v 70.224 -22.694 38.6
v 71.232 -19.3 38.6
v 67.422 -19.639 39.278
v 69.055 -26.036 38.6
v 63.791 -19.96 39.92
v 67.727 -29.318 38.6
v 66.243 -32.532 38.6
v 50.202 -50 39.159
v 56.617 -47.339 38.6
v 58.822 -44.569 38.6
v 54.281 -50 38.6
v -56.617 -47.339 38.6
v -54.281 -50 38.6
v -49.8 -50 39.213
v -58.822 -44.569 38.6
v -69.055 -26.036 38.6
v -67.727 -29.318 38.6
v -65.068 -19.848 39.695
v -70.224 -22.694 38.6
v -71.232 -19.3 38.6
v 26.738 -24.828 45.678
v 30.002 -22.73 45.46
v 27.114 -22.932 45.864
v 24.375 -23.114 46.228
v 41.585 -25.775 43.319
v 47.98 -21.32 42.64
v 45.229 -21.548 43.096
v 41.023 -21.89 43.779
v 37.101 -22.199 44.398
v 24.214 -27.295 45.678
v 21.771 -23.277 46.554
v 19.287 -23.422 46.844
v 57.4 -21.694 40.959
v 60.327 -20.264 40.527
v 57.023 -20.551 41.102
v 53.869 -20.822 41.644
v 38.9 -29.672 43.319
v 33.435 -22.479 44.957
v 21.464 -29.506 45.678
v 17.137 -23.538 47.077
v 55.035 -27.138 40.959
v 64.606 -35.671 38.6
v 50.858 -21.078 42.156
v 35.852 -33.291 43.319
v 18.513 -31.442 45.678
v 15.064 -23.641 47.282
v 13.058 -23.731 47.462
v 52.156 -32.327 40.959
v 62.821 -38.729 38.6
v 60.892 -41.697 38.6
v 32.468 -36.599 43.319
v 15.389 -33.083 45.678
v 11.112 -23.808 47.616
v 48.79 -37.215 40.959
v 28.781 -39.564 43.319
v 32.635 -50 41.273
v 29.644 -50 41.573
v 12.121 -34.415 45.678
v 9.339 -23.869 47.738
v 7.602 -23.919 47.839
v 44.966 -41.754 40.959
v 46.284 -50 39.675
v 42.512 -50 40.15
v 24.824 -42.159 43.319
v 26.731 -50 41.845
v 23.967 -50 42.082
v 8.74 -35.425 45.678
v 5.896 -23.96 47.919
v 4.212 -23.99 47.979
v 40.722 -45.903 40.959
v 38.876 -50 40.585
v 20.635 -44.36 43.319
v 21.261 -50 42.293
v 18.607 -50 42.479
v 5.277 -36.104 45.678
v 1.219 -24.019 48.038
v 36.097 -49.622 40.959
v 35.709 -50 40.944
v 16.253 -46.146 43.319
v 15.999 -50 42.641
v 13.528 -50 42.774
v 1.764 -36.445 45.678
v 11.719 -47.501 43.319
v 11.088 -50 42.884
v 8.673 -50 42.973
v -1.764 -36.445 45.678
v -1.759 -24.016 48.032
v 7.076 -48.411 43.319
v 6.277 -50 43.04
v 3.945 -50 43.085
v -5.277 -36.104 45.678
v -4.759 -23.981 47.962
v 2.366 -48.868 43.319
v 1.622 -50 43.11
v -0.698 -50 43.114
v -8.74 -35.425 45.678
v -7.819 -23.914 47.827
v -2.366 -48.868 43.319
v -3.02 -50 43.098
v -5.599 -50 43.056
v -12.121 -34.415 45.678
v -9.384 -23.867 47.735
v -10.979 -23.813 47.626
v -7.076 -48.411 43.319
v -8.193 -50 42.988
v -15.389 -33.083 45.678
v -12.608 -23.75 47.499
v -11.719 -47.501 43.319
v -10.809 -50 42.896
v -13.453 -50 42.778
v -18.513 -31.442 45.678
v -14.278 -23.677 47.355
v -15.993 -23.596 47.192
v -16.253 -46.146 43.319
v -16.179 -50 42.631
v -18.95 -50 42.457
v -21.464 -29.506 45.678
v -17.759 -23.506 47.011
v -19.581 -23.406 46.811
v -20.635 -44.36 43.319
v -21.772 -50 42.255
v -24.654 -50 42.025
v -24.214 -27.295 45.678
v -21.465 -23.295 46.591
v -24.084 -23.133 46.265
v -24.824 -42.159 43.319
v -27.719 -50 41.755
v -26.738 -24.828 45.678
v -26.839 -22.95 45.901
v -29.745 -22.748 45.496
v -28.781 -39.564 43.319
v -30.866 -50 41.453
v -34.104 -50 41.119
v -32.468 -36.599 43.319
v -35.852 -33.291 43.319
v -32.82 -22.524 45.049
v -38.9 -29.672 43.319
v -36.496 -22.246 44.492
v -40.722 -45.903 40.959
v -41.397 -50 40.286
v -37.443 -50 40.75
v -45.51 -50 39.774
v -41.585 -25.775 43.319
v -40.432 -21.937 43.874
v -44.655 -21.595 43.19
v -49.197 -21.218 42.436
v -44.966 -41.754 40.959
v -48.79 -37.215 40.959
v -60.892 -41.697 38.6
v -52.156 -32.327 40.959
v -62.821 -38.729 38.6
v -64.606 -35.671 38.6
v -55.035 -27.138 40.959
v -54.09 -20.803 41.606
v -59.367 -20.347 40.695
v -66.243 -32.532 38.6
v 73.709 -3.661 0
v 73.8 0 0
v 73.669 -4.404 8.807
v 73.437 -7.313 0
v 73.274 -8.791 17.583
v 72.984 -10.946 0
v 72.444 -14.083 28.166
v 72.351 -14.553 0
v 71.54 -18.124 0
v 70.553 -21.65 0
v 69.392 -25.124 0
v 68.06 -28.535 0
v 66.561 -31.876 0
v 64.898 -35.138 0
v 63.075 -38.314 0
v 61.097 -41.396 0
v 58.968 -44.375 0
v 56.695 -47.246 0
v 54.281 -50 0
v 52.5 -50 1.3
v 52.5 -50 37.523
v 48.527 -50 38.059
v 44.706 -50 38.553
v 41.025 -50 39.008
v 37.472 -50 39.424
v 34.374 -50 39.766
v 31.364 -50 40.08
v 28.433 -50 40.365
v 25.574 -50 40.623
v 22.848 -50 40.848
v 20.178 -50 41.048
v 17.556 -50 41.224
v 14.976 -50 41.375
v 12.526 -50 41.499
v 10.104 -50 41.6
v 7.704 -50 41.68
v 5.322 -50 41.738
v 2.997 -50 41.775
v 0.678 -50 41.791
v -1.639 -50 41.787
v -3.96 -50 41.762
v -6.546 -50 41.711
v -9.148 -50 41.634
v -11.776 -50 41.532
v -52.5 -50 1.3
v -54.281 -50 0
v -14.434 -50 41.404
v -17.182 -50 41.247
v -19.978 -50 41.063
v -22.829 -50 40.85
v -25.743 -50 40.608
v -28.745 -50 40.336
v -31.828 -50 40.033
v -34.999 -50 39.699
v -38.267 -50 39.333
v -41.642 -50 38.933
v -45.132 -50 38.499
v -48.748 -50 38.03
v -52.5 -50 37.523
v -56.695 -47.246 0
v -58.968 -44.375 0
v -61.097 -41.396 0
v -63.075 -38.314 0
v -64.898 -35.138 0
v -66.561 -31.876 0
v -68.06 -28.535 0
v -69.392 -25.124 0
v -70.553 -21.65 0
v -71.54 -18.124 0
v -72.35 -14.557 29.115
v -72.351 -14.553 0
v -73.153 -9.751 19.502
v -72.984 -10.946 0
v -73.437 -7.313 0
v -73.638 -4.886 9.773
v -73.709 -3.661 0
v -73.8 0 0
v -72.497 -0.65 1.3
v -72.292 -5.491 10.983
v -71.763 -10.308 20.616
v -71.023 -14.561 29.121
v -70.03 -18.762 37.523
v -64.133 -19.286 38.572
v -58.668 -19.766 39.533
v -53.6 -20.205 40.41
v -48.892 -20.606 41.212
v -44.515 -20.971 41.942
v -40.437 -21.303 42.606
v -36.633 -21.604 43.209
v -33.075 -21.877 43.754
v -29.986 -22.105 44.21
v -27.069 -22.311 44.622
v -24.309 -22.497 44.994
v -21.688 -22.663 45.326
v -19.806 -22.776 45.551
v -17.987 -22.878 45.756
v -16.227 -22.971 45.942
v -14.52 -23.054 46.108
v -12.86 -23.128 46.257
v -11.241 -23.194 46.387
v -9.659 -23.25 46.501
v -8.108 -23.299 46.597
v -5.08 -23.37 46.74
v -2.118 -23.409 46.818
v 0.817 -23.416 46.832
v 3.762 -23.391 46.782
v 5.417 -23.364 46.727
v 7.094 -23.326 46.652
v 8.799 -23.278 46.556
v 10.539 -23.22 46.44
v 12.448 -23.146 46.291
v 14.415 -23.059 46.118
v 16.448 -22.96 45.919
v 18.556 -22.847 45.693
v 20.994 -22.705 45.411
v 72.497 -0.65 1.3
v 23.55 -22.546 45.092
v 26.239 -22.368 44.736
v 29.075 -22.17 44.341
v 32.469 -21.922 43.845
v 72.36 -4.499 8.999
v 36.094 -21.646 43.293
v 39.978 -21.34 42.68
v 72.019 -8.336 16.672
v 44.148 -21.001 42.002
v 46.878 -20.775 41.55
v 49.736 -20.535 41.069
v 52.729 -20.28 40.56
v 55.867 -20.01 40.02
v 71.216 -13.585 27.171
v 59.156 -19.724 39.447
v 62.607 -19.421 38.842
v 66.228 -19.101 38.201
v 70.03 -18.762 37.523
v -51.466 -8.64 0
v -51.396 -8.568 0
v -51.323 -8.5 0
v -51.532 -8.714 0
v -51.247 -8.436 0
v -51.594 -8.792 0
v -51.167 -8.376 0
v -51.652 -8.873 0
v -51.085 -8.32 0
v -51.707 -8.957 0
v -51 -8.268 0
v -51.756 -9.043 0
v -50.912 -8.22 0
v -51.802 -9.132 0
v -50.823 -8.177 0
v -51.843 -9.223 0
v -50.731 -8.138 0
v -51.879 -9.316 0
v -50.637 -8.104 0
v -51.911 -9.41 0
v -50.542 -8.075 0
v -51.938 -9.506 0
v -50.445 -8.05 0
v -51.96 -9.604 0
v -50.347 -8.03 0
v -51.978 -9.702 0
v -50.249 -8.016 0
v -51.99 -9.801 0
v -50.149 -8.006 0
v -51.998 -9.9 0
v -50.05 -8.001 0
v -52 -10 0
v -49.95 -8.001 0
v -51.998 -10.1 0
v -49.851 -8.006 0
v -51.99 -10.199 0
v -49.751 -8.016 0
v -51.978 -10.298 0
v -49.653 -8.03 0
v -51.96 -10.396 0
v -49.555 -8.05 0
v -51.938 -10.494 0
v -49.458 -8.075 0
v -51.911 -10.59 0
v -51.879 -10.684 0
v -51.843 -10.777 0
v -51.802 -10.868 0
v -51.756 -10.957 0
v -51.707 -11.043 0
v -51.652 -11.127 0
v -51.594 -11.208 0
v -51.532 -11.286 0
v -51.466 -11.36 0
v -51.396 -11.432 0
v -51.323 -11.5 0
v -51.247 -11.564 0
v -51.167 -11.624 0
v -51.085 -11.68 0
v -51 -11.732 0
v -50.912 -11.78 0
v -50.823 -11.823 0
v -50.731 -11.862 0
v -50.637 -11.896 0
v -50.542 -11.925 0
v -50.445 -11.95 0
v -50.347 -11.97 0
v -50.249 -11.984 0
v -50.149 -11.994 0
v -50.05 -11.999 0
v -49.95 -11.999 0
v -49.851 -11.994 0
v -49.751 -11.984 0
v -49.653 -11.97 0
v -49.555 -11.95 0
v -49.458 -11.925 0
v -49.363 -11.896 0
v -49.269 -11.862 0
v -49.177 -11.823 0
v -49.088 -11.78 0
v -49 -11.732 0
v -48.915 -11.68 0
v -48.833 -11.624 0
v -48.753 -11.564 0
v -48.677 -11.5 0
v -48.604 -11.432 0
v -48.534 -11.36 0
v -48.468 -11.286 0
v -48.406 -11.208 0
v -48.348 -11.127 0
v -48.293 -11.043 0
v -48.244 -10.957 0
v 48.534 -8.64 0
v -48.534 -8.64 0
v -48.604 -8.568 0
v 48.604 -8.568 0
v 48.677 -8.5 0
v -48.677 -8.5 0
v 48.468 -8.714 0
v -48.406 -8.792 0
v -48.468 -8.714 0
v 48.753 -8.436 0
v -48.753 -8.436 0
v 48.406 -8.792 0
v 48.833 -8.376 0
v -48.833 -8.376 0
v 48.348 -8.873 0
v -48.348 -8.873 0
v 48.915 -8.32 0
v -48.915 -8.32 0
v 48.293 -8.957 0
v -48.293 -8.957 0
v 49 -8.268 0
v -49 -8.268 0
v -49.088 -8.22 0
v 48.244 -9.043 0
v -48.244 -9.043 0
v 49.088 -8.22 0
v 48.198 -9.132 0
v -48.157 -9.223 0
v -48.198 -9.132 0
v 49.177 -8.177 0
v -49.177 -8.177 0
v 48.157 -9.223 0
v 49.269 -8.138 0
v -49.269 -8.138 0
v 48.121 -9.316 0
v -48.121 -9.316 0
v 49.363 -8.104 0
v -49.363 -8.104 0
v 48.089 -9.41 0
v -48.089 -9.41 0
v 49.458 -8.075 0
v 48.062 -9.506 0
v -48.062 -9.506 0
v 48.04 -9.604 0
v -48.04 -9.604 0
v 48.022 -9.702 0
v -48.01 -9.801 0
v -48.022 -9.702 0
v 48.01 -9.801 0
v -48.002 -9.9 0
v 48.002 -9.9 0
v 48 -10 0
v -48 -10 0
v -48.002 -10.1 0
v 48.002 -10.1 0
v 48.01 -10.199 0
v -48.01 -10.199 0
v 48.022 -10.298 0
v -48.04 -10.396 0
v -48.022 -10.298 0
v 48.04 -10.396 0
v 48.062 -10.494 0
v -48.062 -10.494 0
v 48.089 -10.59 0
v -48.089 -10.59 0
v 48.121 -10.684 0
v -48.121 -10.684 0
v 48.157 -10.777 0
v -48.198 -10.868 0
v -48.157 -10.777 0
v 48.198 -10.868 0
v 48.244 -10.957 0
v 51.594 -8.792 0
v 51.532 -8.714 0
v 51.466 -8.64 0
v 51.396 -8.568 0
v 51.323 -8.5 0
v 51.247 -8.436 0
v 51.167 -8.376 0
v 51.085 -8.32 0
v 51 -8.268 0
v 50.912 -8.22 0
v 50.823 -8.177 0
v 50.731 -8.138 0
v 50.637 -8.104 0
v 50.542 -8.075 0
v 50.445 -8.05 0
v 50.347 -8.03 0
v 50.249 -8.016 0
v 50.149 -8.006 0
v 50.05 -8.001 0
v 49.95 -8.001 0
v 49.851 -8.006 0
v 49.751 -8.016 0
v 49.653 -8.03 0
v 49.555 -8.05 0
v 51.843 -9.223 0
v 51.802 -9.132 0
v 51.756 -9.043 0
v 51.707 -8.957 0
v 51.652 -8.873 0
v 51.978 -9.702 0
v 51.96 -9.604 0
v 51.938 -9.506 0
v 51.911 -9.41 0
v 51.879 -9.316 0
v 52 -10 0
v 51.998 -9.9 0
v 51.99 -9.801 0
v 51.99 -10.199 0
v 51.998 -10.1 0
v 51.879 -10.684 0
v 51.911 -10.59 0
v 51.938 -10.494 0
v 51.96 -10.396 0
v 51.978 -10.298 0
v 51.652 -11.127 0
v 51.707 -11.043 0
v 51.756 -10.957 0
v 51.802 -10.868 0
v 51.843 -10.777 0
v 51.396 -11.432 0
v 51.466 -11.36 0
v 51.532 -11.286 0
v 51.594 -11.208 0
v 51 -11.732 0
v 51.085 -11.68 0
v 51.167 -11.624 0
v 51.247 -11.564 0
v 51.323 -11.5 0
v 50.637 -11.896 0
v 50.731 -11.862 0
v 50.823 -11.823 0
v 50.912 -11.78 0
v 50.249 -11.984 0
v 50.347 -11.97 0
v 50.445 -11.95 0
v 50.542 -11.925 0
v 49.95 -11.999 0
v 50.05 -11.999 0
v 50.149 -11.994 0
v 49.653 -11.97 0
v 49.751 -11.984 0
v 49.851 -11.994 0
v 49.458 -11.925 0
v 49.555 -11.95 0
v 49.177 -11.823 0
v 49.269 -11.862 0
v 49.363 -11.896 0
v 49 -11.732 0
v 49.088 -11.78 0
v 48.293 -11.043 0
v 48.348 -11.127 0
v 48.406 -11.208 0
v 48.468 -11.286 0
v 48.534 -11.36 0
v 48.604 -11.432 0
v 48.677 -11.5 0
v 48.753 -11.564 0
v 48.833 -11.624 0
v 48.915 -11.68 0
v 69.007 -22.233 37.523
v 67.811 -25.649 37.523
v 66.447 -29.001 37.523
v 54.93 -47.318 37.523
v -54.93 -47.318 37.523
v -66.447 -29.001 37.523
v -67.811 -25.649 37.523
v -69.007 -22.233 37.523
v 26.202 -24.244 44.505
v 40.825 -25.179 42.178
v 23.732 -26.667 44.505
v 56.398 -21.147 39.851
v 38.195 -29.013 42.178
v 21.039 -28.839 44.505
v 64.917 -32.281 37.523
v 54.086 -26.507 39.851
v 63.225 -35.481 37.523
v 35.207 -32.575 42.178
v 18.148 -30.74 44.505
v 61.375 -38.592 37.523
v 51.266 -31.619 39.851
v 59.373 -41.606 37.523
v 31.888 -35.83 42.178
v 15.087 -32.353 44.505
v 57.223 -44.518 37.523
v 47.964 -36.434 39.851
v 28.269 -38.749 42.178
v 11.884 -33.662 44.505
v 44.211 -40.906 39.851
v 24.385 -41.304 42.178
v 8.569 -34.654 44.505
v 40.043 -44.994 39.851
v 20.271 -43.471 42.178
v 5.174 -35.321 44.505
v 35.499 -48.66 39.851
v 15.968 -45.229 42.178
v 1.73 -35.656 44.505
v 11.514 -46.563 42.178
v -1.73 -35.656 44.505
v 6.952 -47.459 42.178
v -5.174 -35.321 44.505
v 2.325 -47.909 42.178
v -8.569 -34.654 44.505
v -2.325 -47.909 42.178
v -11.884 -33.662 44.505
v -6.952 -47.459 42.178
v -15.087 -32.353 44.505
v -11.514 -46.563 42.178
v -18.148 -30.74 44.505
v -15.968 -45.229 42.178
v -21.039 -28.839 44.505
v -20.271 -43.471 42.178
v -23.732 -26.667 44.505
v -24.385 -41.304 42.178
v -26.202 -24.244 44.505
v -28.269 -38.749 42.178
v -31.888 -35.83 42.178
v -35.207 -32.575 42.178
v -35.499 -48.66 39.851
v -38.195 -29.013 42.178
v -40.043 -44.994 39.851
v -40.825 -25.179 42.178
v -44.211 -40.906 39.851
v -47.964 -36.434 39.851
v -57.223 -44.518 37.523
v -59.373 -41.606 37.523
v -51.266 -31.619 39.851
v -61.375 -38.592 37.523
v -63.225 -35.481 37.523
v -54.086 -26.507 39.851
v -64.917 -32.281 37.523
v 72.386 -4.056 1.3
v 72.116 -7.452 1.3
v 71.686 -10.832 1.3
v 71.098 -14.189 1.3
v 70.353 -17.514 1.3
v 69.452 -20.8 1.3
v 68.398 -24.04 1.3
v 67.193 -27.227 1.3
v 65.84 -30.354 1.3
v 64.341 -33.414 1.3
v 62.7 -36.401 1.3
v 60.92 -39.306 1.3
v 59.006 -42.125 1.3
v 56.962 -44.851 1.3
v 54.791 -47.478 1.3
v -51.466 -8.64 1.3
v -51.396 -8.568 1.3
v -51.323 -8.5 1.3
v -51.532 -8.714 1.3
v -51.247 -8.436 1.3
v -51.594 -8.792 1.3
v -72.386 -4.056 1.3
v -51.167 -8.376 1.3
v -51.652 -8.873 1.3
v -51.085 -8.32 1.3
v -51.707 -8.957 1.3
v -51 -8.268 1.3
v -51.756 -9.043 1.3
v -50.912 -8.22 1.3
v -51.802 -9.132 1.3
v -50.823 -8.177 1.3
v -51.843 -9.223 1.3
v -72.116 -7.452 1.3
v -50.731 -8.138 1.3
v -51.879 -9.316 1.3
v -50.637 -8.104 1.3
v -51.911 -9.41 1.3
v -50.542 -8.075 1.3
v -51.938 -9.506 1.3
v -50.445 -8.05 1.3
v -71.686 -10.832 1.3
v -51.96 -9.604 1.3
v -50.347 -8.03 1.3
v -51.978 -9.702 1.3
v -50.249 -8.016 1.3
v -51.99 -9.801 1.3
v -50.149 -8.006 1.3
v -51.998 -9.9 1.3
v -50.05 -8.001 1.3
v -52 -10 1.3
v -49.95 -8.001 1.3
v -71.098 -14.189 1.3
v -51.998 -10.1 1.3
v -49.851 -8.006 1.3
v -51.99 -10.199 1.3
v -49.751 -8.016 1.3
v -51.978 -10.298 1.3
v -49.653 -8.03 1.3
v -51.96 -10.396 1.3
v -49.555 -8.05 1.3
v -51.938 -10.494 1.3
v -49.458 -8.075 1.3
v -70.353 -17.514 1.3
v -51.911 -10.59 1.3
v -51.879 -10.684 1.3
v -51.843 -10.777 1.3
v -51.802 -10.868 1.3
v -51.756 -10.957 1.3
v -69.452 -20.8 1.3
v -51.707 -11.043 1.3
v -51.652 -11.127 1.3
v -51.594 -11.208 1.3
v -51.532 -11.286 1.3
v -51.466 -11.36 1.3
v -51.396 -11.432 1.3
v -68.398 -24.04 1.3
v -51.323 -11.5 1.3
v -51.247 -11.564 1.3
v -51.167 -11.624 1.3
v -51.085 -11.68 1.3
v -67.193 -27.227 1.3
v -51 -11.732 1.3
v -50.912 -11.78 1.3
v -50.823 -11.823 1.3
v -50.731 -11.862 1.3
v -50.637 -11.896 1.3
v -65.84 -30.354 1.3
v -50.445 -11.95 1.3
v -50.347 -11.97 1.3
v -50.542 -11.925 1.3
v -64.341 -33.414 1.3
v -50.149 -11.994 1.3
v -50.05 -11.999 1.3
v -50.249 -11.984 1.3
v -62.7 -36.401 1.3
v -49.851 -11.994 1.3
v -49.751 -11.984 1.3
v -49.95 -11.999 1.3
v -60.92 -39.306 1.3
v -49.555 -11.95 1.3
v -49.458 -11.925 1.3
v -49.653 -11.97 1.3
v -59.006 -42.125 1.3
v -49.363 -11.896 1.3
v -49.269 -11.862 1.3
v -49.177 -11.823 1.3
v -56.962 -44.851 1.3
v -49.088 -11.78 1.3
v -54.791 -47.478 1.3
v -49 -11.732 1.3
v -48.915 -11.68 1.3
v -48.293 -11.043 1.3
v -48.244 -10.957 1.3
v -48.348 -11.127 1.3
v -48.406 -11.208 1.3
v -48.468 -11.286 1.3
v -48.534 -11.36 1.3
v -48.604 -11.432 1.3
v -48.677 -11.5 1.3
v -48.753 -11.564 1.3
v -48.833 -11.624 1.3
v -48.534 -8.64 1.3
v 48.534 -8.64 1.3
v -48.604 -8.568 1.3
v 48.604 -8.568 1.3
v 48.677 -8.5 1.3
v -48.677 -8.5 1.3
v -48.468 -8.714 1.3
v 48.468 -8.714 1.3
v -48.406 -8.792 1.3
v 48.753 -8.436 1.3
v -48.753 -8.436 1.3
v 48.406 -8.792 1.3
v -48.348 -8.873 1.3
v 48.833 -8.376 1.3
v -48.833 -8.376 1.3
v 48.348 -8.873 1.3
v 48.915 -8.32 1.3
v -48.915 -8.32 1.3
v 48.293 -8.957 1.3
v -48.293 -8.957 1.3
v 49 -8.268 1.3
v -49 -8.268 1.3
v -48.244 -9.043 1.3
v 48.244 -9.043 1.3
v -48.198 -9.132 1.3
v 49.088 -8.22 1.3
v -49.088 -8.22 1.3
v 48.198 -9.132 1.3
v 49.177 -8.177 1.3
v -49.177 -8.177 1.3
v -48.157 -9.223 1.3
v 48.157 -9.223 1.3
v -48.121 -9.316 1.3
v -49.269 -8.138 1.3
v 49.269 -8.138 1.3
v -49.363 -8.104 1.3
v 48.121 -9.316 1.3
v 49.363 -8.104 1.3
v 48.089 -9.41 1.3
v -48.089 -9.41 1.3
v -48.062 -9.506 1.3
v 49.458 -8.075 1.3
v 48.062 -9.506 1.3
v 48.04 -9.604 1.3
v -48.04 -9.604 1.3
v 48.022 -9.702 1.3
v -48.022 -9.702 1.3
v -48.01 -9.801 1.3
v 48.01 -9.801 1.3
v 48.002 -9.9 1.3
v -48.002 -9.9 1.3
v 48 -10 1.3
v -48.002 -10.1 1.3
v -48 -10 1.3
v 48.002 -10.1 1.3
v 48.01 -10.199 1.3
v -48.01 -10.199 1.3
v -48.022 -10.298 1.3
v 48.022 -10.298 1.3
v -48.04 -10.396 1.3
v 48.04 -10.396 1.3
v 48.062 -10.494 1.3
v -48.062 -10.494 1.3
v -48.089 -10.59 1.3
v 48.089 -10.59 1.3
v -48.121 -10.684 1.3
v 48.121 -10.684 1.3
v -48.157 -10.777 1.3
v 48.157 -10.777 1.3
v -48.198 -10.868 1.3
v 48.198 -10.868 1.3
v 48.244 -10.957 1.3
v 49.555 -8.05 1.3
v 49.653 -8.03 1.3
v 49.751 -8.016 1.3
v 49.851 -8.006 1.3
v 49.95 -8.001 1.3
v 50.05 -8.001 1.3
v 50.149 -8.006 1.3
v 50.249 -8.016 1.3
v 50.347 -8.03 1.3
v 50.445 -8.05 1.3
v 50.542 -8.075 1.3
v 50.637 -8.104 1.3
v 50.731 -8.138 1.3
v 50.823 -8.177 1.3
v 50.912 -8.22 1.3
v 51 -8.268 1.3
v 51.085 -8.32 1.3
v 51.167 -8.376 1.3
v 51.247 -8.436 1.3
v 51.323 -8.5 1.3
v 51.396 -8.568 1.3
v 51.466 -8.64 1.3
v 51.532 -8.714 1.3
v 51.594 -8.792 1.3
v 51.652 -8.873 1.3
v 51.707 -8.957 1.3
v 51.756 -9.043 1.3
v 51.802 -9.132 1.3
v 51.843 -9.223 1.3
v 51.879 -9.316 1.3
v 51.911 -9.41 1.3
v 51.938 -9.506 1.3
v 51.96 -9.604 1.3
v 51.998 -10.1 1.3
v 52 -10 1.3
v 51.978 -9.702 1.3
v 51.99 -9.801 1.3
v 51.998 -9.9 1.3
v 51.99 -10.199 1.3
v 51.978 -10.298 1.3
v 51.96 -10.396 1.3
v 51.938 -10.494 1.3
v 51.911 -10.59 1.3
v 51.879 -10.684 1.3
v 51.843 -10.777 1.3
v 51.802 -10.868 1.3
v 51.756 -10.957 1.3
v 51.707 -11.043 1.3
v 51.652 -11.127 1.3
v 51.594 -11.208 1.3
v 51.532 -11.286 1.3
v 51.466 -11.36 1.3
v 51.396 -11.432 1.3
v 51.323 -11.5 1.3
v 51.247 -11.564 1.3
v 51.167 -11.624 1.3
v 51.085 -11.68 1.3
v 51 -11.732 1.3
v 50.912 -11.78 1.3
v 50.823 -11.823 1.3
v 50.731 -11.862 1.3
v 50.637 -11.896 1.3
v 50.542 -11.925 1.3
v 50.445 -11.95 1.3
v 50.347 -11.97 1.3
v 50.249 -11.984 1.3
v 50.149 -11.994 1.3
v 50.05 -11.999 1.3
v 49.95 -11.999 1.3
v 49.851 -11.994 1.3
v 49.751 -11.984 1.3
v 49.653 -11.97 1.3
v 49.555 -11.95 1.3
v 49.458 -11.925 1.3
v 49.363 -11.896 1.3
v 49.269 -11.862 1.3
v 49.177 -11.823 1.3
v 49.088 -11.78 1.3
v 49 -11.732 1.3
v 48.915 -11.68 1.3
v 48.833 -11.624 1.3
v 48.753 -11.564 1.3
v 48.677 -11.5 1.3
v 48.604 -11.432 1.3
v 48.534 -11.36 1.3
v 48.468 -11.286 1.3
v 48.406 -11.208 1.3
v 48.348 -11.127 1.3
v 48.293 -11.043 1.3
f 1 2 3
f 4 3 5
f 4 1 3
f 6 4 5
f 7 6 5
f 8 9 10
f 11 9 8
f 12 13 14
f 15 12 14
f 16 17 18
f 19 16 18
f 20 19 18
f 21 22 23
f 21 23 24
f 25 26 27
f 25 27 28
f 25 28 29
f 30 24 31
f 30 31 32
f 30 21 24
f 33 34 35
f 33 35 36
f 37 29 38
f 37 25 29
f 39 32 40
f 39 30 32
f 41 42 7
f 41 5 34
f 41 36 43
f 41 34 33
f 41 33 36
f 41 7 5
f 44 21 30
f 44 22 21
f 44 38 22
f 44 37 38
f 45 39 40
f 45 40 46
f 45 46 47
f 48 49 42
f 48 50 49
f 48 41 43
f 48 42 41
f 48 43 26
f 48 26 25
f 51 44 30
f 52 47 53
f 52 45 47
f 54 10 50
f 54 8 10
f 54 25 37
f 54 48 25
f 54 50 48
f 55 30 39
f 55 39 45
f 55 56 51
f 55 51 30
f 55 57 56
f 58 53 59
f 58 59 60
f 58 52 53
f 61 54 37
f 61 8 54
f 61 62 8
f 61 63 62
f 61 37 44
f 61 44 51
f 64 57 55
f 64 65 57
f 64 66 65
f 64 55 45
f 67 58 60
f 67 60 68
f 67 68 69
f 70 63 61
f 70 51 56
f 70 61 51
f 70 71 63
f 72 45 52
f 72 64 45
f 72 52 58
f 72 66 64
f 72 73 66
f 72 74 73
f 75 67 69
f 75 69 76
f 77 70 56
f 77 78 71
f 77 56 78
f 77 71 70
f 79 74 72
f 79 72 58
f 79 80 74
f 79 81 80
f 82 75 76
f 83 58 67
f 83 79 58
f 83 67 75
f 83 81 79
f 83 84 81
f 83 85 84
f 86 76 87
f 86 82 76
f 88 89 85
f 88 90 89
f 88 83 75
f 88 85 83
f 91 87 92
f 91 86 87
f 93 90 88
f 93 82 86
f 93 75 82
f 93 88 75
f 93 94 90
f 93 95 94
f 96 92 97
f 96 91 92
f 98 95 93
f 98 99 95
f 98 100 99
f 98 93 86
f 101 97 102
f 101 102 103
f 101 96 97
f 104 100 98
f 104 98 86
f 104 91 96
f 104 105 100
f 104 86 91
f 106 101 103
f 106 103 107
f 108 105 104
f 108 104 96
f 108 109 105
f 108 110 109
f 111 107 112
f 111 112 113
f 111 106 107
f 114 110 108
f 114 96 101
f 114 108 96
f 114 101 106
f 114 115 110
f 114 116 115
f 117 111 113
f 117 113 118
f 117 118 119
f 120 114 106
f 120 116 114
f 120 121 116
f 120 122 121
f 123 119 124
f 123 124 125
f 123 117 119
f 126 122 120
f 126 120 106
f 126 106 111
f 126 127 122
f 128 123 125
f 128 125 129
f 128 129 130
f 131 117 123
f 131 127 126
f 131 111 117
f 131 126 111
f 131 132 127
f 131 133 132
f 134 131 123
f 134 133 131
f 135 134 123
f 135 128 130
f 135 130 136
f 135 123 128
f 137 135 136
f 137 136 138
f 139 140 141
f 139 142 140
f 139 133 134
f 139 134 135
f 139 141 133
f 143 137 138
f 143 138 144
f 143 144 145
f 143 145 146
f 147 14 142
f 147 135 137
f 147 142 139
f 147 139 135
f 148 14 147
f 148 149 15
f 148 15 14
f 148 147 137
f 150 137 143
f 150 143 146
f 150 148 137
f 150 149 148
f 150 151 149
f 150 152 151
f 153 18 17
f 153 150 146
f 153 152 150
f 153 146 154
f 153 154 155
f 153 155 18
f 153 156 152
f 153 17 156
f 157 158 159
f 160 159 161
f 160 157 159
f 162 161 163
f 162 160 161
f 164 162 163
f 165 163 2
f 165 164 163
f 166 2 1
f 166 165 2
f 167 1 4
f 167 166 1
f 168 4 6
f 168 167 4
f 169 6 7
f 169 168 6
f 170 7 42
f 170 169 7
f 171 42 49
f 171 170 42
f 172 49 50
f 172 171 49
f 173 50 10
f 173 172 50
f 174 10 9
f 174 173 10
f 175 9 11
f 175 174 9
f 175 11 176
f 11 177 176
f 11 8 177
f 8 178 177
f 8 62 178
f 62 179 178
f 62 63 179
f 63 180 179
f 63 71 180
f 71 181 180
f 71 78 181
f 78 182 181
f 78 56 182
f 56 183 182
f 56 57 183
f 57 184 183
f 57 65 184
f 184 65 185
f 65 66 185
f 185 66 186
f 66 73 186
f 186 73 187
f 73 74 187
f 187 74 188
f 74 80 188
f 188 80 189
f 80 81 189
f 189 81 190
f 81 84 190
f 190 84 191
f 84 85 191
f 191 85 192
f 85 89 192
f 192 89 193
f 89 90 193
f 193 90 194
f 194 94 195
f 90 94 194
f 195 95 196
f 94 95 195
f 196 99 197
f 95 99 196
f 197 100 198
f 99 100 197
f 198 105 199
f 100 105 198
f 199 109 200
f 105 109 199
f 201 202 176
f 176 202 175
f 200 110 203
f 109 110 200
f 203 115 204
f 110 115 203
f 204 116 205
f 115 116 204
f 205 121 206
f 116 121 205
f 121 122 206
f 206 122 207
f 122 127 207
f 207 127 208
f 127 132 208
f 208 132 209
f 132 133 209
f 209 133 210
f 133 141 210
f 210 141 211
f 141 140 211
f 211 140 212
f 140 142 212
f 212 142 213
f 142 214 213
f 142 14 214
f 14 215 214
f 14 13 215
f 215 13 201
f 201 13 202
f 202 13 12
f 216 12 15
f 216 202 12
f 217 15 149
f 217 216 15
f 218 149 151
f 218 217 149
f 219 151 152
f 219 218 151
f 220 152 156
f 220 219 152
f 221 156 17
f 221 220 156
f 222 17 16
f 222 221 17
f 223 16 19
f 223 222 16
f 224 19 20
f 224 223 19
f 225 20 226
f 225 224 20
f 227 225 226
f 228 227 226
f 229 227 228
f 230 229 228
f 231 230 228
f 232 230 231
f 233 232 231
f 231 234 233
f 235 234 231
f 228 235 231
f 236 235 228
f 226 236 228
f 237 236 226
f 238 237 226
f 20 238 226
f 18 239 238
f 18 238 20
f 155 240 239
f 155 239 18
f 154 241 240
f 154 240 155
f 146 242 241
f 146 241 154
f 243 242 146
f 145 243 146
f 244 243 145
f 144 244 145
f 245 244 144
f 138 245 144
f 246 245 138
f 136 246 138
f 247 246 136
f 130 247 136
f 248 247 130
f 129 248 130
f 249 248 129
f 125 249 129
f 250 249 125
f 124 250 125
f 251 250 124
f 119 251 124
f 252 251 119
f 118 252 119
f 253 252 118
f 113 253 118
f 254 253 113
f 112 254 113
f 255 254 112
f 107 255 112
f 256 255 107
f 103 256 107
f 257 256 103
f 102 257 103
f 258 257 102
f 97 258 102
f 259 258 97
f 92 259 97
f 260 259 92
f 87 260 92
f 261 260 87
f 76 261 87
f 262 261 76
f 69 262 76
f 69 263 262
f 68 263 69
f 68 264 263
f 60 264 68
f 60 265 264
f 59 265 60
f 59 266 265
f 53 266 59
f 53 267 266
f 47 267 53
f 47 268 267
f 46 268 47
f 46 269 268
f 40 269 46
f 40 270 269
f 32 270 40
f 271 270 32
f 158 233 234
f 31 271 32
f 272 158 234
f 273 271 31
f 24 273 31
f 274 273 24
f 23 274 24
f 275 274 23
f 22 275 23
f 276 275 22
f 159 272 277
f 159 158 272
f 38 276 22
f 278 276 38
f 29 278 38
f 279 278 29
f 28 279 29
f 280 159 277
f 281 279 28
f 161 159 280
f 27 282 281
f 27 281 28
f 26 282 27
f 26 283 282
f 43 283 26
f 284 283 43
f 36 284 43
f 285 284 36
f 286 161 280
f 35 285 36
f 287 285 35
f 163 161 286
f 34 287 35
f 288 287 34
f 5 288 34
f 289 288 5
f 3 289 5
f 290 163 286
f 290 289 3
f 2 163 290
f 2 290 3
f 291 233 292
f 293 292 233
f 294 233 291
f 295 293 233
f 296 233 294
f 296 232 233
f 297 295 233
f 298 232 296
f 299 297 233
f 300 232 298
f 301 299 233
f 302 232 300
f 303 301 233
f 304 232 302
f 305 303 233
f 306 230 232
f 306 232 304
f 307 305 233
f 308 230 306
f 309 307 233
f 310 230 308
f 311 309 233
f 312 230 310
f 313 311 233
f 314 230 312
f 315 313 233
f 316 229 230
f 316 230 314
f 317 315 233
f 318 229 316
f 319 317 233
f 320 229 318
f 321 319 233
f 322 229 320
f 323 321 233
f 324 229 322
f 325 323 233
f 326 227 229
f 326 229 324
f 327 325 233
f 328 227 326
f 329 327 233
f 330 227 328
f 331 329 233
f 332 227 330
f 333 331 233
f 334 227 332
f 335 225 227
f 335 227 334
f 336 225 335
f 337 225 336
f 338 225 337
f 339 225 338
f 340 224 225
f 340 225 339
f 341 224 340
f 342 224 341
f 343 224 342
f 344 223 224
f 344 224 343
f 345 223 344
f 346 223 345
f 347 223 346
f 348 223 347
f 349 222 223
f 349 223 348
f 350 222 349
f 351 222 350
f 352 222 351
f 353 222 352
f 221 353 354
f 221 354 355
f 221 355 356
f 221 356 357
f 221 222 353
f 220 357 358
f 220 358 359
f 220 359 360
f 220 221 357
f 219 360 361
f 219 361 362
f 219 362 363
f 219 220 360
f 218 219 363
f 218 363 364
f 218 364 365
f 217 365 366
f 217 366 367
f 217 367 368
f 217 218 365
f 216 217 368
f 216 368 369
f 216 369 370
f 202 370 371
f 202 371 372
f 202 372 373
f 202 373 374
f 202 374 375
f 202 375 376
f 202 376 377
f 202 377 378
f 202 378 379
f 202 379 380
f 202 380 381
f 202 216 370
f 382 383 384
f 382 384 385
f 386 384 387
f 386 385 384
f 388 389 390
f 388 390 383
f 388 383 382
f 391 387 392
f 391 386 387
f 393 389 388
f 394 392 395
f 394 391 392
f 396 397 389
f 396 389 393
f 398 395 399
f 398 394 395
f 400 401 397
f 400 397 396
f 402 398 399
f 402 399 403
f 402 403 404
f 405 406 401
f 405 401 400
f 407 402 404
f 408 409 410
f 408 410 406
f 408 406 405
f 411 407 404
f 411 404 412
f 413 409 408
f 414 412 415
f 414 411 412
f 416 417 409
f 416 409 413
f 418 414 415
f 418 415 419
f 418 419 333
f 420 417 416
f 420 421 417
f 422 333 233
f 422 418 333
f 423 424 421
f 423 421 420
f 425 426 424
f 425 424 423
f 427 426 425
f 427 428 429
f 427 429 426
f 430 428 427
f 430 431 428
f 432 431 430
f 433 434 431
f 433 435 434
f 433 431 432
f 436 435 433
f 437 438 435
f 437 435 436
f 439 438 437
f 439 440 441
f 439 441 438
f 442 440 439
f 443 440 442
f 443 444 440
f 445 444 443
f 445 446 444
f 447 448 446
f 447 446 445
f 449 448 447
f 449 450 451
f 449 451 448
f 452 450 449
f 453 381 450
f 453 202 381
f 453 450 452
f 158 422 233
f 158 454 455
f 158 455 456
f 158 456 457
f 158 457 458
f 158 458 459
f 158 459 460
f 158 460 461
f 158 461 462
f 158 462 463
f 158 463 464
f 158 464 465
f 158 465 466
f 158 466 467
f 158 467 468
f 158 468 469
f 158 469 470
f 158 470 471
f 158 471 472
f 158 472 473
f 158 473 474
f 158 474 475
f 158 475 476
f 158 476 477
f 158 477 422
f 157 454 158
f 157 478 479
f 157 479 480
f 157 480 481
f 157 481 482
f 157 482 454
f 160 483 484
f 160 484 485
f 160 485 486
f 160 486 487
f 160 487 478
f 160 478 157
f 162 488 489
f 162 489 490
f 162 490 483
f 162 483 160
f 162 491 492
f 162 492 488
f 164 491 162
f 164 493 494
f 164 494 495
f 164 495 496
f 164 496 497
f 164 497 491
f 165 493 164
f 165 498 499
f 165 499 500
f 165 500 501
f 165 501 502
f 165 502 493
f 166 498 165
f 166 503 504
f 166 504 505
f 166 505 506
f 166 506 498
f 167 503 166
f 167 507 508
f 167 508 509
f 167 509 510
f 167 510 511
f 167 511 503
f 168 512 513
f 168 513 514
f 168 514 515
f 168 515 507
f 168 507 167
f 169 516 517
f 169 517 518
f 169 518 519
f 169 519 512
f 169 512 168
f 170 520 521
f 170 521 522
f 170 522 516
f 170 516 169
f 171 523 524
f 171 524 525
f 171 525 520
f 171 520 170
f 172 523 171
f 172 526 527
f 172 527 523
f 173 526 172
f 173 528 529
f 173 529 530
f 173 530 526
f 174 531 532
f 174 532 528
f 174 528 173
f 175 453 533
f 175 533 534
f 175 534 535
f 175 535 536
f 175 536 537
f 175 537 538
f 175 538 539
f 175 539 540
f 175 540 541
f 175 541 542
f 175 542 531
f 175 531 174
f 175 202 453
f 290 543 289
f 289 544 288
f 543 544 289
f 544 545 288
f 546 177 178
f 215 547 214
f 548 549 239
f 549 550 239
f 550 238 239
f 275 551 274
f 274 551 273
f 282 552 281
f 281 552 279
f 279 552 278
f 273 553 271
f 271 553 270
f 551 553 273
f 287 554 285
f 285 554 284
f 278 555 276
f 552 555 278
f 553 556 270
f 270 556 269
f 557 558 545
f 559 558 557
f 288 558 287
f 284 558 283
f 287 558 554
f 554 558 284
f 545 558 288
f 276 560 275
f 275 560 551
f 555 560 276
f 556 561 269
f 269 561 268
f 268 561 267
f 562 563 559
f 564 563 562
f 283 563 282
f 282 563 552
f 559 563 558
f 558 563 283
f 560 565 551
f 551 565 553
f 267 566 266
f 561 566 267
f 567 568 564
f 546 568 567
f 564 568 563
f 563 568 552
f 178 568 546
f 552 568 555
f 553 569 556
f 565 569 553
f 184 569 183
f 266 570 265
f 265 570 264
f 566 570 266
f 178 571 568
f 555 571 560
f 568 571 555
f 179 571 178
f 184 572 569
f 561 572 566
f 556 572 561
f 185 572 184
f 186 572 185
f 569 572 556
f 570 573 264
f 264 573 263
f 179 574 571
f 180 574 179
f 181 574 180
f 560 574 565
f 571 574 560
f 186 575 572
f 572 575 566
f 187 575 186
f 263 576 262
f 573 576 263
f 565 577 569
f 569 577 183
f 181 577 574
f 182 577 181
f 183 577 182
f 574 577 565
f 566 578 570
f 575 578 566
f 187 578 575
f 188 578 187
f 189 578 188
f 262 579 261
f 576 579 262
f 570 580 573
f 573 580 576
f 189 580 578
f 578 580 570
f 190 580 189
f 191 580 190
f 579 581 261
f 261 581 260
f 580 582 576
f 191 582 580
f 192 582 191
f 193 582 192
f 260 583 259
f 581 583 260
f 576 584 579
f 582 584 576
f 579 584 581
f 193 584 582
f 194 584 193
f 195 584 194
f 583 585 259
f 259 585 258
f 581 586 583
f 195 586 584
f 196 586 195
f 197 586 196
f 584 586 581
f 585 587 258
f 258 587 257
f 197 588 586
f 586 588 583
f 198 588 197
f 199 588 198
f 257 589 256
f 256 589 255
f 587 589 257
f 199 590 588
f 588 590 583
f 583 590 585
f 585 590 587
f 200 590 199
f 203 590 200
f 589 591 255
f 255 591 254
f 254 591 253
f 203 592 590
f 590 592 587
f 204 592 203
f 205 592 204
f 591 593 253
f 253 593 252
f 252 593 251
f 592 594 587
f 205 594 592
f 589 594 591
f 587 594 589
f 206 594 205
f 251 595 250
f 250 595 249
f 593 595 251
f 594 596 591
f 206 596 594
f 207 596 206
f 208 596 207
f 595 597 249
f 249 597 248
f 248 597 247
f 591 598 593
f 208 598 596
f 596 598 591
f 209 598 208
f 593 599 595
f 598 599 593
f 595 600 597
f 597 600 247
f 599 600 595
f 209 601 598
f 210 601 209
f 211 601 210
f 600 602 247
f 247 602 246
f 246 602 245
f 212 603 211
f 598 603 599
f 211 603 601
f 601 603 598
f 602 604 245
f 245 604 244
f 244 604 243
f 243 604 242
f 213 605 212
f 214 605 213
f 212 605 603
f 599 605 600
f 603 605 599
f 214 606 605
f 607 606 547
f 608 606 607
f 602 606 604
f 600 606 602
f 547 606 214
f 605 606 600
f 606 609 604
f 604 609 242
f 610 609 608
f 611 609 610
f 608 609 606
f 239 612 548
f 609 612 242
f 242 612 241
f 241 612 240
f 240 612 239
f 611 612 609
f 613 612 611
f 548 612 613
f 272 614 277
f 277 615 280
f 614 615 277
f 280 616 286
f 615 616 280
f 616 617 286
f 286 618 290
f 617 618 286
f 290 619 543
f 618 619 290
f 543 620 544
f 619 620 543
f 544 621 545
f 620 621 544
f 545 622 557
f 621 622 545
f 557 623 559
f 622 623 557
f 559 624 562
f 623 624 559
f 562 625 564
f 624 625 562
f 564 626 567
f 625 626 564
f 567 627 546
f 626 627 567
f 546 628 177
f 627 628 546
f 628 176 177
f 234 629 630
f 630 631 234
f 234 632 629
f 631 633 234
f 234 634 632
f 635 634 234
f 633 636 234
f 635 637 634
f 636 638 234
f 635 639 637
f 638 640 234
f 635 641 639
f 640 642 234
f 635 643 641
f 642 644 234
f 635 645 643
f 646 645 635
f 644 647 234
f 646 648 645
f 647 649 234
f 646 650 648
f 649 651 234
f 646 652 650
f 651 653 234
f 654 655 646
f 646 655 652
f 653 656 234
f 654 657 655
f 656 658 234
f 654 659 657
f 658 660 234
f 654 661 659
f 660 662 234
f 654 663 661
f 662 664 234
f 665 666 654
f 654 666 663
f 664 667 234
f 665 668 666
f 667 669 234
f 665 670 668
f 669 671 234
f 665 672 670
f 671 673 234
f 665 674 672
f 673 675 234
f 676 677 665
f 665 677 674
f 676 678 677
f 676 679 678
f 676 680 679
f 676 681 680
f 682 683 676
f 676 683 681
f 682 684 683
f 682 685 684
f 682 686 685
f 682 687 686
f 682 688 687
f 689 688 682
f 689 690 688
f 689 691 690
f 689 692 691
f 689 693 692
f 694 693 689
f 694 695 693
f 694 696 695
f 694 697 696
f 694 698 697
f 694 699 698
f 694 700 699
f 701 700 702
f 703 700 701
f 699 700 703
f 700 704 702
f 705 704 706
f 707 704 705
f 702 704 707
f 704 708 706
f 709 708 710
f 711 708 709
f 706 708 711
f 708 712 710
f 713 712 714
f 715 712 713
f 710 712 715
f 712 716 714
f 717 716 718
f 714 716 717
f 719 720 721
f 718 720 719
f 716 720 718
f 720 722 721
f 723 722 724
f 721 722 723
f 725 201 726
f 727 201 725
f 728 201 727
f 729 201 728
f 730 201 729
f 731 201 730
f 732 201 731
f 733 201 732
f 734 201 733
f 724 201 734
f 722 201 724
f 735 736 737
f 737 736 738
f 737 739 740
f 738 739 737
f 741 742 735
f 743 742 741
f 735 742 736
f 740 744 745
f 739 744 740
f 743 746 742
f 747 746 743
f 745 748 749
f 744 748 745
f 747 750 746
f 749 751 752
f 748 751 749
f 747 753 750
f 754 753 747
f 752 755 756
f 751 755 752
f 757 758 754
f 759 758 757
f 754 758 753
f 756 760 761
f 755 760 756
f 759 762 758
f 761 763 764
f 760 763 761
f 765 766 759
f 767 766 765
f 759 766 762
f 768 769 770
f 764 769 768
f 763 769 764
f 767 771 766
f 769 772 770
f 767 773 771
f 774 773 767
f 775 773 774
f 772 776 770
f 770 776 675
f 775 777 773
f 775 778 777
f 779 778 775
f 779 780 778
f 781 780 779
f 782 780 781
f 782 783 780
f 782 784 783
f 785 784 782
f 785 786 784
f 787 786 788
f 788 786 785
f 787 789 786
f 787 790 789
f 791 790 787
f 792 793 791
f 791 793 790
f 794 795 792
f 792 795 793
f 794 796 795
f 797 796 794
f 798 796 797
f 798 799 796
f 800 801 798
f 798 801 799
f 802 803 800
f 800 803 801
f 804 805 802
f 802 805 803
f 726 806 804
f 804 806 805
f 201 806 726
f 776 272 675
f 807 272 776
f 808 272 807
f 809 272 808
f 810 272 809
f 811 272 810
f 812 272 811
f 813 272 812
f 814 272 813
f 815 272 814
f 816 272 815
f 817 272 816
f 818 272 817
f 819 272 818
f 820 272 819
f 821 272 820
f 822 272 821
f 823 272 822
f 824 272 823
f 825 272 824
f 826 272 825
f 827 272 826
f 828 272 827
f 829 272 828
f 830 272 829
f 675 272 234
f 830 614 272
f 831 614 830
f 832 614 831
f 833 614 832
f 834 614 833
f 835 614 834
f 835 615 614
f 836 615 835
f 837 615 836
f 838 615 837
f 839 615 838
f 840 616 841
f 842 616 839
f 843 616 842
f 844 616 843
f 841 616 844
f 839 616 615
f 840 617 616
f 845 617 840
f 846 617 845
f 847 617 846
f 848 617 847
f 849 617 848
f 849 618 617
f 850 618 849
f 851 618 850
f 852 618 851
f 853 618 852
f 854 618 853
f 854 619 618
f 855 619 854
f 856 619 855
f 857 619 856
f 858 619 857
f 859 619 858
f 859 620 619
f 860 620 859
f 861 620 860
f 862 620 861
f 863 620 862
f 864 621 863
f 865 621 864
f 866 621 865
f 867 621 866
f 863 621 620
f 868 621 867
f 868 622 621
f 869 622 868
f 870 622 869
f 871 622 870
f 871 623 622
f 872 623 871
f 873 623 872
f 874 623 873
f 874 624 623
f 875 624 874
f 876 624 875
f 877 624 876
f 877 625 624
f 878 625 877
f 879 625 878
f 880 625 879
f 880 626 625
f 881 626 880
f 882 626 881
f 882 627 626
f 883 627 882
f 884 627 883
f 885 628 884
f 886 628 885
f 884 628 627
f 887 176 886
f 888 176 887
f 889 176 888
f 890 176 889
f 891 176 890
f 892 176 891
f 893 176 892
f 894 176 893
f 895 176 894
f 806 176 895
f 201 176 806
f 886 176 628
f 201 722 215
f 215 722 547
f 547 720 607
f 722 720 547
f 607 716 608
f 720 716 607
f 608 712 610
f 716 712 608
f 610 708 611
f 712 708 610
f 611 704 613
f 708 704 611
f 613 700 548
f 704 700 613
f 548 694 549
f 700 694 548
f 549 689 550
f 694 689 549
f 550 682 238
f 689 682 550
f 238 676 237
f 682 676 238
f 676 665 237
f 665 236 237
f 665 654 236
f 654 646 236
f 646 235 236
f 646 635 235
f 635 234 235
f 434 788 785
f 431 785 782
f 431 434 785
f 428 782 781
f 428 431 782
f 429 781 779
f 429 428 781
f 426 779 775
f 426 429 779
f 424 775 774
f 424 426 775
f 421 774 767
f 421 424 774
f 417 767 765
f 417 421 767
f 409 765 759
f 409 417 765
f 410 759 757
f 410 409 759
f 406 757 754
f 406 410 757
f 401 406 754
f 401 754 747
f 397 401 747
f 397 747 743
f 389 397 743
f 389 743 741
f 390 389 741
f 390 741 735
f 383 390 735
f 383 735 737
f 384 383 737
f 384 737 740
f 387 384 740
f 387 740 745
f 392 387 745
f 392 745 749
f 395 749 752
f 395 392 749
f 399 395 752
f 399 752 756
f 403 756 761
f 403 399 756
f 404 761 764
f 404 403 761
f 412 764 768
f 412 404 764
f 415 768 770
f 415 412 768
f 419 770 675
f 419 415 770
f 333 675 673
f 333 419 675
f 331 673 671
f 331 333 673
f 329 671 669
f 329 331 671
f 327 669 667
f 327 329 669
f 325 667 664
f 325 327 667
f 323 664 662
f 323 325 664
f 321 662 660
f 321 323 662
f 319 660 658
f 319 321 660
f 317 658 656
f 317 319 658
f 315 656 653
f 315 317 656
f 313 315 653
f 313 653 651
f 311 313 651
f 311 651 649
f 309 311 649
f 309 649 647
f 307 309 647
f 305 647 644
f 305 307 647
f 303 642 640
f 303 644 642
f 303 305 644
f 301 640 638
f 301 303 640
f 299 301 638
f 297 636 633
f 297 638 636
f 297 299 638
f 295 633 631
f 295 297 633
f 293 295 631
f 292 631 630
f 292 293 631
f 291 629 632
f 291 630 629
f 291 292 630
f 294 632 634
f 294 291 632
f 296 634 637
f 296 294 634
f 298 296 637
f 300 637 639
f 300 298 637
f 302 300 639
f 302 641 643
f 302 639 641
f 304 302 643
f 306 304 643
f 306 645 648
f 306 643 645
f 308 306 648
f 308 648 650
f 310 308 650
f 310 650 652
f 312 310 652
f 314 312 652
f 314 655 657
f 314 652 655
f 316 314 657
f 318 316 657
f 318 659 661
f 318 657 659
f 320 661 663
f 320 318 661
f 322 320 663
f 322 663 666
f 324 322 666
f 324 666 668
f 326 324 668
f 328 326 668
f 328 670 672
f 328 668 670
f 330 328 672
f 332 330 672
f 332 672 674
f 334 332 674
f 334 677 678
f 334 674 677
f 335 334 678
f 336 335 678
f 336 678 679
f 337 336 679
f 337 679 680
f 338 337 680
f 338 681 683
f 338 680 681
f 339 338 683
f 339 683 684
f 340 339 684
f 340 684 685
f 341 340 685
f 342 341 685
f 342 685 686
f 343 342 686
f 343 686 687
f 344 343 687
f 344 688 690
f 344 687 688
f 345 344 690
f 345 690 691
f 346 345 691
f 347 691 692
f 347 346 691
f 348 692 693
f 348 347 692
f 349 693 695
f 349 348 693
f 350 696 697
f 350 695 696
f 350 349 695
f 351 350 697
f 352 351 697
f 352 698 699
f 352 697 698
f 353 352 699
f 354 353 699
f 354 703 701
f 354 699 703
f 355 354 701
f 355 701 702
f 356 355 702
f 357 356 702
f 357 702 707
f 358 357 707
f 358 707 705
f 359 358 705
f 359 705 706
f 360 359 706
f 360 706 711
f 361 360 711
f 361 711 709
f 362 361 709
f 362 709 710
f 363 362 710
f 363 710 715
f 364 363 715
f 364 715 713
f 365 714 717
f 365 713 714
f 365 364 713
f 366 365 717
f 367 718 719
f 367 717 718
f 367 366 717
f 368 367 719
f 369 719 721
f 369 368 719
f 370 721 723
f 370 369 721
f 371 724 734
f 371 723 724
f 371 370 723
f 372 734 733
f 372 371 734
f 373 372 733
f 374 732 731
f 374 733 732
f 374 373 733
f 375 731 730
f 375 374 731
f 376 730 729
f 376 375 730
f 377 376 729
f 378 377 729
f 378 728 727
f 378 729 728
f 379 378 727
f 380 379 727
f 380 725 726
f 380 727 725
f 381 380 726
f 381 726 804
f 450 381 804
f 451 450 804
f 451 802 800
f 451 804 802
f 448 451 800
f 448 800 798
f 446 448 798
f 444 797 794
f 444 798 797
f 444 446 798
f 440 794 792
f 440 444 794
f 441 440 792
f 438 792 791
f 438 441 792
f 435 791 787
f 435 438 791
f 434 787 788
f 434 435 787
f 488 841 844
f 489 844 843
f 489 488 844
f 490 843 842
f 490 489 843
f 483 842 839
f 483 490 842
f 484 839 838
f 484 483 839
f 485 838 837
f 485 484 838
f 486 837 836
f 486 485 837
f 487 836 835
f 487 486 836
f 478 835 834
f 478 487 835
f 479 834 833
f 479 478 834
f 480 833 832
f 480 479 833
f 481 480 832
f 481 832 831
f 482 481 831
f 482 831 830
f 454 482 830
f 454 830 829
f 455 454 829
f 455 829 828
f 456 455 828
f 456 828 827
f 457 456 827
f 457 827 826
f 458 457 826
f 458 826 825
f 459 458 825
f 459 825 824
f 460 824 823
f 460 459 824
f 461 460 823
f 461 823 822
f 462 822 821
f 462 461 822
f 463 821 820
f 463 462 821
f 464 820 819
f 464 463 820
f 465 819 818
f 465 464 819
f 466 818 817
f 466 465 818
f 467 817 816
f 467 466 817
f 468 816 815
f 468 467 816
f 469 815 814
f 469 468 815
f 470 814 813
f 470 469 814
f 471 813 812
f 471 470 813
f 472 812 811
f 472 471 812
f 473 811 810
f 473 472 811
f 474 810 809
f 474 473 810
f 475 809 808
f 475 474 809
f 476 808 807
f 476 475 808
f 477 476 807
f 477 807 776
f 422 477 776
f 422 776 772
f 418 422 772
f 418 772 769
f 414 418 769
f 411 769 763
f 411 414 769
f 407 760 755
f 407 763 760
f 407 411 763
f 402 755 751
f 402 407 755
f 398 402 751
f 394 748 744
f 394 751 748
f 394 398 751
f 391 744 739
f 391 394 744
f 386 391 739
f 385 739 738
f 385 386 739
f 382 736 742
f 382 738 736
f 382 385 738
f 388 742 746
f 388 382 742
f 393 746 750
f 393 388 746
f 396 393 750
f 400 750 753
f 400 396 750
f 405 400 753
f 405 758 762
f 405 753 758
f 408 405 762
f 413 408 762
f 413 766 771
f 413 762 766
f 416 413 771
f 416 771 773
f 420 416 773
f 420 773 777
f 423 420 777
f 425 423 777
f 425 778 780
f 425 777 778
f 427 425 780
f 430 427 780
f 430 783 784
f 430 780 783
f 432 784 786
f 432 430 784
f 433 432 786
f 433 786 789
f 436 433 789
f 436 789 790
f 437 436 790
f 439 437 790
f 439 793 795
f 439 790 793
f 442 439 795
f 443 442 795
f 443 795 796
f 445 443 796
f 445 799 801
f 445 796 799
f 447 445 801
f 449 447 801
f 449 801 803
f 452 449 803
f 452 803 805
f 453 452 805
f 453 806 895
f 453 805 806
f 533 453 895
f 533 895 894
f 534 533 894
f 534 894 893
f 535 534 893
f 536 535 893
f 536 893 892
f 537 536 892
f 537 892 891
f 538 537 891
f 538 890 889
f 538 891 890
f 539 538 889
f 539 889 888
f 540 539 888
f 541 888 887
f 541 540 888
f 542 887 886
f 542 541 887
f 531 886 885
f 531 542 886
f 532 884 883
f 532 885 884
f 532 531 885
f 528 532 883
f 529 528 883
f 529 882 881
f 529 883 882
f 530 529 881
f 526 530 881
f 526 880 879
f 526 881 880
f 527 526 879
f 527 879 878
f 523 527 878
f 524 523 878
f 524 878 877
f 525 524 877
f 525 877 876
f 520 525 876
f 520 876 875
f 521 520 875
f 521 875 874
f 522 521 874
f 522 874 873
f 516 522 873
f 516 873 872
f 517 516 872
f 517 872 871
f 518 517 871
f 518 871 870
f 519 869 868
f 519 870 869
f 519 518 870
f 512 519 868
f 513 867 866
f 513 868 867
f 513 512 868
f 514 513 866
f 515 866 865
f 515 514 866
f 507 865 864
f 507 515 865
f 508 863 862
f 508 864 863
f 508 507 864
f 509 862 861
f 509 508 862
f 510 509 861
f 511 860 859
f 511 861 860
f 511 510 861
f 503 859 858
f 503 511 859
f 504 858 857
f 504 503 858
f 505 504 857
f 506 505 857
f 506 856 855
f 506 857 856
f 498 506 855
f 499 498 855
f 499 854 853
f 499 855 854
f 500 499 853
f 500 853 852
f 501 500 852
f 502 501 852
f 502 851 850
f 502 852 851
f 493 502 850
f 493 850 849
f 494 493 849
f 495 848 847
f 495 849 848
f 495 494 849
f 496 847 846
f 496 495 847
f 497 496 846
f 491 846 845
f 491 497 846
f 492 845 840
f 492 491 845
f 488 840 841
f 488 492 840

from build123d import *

# Parameters (mm, degrees)
REVOLUTION_ANGLE     = -180
THICKNESS_T          = -1.3
POCKET_DEPTH         = 73.801
POCKET_DEPTH_BACK    = -73.801
SKETCH002_R          = 2
POCKET001_DEPTH      = 5
SKETCH003_W          = 150
SKETCH003_H          = 50
POCKET002_DEPTH      = 0.001
POCKET002_DEPTH_BACK = -48.044069


with BuildPart() as part:
    # Sketch → Revolution (revolve)
    with BuildSketch(Plane.XZ):
        Polygon((0, 0), (0, 52.6), (73.8, 38.6), (73.8, 0), align=None)
    revolve(axis=Axis((0, 0, 0), (0, 0, 1)), revolution_arc=REVOLUTION_ANGLE)

    # Thickness
    thickness_openings = [part.faces().sort_by_distance(p)[0] for p in [
        (0, 0, 22.979094),
    ]]
    offset(amount=THICKNESS_T, openings=thickness_openings)

    # Sketch001 → Pocket (cut, two sides)
    with BuildSketch(Plane.YZ) as pocket_sk:
        Polygon((0, 0), (-30, 60), (10, 60), (10, 0), align=None)
    extrude(amount=-POCKET_DEPTH, mode=Mode.SUBTRACT)
    extrude(pocket_sk.sketch, amount=-POCKET_DEPTH_BACK, mode=Mode.SUBTRACT)

    # Sketch002 → Pocket001 (cut)
    with BuildSketch(Plane.XY):
        with Locations((-50, -10)):
            Circle(SKETCH002_R)
        with Locations((50, -10)):
            Circle(SKETCH002_R)
    extrude(amount=POCKET001_DEPTH, mode=Mode.SUBTRACT)

    # Sketch003 → Pocket002 (cut, two sides)
    with BuildSketch(Plane.XY) as pocket002_sk:
        with Locations((0, -75)):
            Rectangle(SKETCH003_W, SKETCH003_H)
    extrude(amount=-POCKET002_DEPTH, mode=Mode.SUBTRACT)
    extrude(pocket002_sk.sketch, amount=-POCKET002_DEPTH_BACK, mode=Mode.SUBTRACT)


solid = part.part
